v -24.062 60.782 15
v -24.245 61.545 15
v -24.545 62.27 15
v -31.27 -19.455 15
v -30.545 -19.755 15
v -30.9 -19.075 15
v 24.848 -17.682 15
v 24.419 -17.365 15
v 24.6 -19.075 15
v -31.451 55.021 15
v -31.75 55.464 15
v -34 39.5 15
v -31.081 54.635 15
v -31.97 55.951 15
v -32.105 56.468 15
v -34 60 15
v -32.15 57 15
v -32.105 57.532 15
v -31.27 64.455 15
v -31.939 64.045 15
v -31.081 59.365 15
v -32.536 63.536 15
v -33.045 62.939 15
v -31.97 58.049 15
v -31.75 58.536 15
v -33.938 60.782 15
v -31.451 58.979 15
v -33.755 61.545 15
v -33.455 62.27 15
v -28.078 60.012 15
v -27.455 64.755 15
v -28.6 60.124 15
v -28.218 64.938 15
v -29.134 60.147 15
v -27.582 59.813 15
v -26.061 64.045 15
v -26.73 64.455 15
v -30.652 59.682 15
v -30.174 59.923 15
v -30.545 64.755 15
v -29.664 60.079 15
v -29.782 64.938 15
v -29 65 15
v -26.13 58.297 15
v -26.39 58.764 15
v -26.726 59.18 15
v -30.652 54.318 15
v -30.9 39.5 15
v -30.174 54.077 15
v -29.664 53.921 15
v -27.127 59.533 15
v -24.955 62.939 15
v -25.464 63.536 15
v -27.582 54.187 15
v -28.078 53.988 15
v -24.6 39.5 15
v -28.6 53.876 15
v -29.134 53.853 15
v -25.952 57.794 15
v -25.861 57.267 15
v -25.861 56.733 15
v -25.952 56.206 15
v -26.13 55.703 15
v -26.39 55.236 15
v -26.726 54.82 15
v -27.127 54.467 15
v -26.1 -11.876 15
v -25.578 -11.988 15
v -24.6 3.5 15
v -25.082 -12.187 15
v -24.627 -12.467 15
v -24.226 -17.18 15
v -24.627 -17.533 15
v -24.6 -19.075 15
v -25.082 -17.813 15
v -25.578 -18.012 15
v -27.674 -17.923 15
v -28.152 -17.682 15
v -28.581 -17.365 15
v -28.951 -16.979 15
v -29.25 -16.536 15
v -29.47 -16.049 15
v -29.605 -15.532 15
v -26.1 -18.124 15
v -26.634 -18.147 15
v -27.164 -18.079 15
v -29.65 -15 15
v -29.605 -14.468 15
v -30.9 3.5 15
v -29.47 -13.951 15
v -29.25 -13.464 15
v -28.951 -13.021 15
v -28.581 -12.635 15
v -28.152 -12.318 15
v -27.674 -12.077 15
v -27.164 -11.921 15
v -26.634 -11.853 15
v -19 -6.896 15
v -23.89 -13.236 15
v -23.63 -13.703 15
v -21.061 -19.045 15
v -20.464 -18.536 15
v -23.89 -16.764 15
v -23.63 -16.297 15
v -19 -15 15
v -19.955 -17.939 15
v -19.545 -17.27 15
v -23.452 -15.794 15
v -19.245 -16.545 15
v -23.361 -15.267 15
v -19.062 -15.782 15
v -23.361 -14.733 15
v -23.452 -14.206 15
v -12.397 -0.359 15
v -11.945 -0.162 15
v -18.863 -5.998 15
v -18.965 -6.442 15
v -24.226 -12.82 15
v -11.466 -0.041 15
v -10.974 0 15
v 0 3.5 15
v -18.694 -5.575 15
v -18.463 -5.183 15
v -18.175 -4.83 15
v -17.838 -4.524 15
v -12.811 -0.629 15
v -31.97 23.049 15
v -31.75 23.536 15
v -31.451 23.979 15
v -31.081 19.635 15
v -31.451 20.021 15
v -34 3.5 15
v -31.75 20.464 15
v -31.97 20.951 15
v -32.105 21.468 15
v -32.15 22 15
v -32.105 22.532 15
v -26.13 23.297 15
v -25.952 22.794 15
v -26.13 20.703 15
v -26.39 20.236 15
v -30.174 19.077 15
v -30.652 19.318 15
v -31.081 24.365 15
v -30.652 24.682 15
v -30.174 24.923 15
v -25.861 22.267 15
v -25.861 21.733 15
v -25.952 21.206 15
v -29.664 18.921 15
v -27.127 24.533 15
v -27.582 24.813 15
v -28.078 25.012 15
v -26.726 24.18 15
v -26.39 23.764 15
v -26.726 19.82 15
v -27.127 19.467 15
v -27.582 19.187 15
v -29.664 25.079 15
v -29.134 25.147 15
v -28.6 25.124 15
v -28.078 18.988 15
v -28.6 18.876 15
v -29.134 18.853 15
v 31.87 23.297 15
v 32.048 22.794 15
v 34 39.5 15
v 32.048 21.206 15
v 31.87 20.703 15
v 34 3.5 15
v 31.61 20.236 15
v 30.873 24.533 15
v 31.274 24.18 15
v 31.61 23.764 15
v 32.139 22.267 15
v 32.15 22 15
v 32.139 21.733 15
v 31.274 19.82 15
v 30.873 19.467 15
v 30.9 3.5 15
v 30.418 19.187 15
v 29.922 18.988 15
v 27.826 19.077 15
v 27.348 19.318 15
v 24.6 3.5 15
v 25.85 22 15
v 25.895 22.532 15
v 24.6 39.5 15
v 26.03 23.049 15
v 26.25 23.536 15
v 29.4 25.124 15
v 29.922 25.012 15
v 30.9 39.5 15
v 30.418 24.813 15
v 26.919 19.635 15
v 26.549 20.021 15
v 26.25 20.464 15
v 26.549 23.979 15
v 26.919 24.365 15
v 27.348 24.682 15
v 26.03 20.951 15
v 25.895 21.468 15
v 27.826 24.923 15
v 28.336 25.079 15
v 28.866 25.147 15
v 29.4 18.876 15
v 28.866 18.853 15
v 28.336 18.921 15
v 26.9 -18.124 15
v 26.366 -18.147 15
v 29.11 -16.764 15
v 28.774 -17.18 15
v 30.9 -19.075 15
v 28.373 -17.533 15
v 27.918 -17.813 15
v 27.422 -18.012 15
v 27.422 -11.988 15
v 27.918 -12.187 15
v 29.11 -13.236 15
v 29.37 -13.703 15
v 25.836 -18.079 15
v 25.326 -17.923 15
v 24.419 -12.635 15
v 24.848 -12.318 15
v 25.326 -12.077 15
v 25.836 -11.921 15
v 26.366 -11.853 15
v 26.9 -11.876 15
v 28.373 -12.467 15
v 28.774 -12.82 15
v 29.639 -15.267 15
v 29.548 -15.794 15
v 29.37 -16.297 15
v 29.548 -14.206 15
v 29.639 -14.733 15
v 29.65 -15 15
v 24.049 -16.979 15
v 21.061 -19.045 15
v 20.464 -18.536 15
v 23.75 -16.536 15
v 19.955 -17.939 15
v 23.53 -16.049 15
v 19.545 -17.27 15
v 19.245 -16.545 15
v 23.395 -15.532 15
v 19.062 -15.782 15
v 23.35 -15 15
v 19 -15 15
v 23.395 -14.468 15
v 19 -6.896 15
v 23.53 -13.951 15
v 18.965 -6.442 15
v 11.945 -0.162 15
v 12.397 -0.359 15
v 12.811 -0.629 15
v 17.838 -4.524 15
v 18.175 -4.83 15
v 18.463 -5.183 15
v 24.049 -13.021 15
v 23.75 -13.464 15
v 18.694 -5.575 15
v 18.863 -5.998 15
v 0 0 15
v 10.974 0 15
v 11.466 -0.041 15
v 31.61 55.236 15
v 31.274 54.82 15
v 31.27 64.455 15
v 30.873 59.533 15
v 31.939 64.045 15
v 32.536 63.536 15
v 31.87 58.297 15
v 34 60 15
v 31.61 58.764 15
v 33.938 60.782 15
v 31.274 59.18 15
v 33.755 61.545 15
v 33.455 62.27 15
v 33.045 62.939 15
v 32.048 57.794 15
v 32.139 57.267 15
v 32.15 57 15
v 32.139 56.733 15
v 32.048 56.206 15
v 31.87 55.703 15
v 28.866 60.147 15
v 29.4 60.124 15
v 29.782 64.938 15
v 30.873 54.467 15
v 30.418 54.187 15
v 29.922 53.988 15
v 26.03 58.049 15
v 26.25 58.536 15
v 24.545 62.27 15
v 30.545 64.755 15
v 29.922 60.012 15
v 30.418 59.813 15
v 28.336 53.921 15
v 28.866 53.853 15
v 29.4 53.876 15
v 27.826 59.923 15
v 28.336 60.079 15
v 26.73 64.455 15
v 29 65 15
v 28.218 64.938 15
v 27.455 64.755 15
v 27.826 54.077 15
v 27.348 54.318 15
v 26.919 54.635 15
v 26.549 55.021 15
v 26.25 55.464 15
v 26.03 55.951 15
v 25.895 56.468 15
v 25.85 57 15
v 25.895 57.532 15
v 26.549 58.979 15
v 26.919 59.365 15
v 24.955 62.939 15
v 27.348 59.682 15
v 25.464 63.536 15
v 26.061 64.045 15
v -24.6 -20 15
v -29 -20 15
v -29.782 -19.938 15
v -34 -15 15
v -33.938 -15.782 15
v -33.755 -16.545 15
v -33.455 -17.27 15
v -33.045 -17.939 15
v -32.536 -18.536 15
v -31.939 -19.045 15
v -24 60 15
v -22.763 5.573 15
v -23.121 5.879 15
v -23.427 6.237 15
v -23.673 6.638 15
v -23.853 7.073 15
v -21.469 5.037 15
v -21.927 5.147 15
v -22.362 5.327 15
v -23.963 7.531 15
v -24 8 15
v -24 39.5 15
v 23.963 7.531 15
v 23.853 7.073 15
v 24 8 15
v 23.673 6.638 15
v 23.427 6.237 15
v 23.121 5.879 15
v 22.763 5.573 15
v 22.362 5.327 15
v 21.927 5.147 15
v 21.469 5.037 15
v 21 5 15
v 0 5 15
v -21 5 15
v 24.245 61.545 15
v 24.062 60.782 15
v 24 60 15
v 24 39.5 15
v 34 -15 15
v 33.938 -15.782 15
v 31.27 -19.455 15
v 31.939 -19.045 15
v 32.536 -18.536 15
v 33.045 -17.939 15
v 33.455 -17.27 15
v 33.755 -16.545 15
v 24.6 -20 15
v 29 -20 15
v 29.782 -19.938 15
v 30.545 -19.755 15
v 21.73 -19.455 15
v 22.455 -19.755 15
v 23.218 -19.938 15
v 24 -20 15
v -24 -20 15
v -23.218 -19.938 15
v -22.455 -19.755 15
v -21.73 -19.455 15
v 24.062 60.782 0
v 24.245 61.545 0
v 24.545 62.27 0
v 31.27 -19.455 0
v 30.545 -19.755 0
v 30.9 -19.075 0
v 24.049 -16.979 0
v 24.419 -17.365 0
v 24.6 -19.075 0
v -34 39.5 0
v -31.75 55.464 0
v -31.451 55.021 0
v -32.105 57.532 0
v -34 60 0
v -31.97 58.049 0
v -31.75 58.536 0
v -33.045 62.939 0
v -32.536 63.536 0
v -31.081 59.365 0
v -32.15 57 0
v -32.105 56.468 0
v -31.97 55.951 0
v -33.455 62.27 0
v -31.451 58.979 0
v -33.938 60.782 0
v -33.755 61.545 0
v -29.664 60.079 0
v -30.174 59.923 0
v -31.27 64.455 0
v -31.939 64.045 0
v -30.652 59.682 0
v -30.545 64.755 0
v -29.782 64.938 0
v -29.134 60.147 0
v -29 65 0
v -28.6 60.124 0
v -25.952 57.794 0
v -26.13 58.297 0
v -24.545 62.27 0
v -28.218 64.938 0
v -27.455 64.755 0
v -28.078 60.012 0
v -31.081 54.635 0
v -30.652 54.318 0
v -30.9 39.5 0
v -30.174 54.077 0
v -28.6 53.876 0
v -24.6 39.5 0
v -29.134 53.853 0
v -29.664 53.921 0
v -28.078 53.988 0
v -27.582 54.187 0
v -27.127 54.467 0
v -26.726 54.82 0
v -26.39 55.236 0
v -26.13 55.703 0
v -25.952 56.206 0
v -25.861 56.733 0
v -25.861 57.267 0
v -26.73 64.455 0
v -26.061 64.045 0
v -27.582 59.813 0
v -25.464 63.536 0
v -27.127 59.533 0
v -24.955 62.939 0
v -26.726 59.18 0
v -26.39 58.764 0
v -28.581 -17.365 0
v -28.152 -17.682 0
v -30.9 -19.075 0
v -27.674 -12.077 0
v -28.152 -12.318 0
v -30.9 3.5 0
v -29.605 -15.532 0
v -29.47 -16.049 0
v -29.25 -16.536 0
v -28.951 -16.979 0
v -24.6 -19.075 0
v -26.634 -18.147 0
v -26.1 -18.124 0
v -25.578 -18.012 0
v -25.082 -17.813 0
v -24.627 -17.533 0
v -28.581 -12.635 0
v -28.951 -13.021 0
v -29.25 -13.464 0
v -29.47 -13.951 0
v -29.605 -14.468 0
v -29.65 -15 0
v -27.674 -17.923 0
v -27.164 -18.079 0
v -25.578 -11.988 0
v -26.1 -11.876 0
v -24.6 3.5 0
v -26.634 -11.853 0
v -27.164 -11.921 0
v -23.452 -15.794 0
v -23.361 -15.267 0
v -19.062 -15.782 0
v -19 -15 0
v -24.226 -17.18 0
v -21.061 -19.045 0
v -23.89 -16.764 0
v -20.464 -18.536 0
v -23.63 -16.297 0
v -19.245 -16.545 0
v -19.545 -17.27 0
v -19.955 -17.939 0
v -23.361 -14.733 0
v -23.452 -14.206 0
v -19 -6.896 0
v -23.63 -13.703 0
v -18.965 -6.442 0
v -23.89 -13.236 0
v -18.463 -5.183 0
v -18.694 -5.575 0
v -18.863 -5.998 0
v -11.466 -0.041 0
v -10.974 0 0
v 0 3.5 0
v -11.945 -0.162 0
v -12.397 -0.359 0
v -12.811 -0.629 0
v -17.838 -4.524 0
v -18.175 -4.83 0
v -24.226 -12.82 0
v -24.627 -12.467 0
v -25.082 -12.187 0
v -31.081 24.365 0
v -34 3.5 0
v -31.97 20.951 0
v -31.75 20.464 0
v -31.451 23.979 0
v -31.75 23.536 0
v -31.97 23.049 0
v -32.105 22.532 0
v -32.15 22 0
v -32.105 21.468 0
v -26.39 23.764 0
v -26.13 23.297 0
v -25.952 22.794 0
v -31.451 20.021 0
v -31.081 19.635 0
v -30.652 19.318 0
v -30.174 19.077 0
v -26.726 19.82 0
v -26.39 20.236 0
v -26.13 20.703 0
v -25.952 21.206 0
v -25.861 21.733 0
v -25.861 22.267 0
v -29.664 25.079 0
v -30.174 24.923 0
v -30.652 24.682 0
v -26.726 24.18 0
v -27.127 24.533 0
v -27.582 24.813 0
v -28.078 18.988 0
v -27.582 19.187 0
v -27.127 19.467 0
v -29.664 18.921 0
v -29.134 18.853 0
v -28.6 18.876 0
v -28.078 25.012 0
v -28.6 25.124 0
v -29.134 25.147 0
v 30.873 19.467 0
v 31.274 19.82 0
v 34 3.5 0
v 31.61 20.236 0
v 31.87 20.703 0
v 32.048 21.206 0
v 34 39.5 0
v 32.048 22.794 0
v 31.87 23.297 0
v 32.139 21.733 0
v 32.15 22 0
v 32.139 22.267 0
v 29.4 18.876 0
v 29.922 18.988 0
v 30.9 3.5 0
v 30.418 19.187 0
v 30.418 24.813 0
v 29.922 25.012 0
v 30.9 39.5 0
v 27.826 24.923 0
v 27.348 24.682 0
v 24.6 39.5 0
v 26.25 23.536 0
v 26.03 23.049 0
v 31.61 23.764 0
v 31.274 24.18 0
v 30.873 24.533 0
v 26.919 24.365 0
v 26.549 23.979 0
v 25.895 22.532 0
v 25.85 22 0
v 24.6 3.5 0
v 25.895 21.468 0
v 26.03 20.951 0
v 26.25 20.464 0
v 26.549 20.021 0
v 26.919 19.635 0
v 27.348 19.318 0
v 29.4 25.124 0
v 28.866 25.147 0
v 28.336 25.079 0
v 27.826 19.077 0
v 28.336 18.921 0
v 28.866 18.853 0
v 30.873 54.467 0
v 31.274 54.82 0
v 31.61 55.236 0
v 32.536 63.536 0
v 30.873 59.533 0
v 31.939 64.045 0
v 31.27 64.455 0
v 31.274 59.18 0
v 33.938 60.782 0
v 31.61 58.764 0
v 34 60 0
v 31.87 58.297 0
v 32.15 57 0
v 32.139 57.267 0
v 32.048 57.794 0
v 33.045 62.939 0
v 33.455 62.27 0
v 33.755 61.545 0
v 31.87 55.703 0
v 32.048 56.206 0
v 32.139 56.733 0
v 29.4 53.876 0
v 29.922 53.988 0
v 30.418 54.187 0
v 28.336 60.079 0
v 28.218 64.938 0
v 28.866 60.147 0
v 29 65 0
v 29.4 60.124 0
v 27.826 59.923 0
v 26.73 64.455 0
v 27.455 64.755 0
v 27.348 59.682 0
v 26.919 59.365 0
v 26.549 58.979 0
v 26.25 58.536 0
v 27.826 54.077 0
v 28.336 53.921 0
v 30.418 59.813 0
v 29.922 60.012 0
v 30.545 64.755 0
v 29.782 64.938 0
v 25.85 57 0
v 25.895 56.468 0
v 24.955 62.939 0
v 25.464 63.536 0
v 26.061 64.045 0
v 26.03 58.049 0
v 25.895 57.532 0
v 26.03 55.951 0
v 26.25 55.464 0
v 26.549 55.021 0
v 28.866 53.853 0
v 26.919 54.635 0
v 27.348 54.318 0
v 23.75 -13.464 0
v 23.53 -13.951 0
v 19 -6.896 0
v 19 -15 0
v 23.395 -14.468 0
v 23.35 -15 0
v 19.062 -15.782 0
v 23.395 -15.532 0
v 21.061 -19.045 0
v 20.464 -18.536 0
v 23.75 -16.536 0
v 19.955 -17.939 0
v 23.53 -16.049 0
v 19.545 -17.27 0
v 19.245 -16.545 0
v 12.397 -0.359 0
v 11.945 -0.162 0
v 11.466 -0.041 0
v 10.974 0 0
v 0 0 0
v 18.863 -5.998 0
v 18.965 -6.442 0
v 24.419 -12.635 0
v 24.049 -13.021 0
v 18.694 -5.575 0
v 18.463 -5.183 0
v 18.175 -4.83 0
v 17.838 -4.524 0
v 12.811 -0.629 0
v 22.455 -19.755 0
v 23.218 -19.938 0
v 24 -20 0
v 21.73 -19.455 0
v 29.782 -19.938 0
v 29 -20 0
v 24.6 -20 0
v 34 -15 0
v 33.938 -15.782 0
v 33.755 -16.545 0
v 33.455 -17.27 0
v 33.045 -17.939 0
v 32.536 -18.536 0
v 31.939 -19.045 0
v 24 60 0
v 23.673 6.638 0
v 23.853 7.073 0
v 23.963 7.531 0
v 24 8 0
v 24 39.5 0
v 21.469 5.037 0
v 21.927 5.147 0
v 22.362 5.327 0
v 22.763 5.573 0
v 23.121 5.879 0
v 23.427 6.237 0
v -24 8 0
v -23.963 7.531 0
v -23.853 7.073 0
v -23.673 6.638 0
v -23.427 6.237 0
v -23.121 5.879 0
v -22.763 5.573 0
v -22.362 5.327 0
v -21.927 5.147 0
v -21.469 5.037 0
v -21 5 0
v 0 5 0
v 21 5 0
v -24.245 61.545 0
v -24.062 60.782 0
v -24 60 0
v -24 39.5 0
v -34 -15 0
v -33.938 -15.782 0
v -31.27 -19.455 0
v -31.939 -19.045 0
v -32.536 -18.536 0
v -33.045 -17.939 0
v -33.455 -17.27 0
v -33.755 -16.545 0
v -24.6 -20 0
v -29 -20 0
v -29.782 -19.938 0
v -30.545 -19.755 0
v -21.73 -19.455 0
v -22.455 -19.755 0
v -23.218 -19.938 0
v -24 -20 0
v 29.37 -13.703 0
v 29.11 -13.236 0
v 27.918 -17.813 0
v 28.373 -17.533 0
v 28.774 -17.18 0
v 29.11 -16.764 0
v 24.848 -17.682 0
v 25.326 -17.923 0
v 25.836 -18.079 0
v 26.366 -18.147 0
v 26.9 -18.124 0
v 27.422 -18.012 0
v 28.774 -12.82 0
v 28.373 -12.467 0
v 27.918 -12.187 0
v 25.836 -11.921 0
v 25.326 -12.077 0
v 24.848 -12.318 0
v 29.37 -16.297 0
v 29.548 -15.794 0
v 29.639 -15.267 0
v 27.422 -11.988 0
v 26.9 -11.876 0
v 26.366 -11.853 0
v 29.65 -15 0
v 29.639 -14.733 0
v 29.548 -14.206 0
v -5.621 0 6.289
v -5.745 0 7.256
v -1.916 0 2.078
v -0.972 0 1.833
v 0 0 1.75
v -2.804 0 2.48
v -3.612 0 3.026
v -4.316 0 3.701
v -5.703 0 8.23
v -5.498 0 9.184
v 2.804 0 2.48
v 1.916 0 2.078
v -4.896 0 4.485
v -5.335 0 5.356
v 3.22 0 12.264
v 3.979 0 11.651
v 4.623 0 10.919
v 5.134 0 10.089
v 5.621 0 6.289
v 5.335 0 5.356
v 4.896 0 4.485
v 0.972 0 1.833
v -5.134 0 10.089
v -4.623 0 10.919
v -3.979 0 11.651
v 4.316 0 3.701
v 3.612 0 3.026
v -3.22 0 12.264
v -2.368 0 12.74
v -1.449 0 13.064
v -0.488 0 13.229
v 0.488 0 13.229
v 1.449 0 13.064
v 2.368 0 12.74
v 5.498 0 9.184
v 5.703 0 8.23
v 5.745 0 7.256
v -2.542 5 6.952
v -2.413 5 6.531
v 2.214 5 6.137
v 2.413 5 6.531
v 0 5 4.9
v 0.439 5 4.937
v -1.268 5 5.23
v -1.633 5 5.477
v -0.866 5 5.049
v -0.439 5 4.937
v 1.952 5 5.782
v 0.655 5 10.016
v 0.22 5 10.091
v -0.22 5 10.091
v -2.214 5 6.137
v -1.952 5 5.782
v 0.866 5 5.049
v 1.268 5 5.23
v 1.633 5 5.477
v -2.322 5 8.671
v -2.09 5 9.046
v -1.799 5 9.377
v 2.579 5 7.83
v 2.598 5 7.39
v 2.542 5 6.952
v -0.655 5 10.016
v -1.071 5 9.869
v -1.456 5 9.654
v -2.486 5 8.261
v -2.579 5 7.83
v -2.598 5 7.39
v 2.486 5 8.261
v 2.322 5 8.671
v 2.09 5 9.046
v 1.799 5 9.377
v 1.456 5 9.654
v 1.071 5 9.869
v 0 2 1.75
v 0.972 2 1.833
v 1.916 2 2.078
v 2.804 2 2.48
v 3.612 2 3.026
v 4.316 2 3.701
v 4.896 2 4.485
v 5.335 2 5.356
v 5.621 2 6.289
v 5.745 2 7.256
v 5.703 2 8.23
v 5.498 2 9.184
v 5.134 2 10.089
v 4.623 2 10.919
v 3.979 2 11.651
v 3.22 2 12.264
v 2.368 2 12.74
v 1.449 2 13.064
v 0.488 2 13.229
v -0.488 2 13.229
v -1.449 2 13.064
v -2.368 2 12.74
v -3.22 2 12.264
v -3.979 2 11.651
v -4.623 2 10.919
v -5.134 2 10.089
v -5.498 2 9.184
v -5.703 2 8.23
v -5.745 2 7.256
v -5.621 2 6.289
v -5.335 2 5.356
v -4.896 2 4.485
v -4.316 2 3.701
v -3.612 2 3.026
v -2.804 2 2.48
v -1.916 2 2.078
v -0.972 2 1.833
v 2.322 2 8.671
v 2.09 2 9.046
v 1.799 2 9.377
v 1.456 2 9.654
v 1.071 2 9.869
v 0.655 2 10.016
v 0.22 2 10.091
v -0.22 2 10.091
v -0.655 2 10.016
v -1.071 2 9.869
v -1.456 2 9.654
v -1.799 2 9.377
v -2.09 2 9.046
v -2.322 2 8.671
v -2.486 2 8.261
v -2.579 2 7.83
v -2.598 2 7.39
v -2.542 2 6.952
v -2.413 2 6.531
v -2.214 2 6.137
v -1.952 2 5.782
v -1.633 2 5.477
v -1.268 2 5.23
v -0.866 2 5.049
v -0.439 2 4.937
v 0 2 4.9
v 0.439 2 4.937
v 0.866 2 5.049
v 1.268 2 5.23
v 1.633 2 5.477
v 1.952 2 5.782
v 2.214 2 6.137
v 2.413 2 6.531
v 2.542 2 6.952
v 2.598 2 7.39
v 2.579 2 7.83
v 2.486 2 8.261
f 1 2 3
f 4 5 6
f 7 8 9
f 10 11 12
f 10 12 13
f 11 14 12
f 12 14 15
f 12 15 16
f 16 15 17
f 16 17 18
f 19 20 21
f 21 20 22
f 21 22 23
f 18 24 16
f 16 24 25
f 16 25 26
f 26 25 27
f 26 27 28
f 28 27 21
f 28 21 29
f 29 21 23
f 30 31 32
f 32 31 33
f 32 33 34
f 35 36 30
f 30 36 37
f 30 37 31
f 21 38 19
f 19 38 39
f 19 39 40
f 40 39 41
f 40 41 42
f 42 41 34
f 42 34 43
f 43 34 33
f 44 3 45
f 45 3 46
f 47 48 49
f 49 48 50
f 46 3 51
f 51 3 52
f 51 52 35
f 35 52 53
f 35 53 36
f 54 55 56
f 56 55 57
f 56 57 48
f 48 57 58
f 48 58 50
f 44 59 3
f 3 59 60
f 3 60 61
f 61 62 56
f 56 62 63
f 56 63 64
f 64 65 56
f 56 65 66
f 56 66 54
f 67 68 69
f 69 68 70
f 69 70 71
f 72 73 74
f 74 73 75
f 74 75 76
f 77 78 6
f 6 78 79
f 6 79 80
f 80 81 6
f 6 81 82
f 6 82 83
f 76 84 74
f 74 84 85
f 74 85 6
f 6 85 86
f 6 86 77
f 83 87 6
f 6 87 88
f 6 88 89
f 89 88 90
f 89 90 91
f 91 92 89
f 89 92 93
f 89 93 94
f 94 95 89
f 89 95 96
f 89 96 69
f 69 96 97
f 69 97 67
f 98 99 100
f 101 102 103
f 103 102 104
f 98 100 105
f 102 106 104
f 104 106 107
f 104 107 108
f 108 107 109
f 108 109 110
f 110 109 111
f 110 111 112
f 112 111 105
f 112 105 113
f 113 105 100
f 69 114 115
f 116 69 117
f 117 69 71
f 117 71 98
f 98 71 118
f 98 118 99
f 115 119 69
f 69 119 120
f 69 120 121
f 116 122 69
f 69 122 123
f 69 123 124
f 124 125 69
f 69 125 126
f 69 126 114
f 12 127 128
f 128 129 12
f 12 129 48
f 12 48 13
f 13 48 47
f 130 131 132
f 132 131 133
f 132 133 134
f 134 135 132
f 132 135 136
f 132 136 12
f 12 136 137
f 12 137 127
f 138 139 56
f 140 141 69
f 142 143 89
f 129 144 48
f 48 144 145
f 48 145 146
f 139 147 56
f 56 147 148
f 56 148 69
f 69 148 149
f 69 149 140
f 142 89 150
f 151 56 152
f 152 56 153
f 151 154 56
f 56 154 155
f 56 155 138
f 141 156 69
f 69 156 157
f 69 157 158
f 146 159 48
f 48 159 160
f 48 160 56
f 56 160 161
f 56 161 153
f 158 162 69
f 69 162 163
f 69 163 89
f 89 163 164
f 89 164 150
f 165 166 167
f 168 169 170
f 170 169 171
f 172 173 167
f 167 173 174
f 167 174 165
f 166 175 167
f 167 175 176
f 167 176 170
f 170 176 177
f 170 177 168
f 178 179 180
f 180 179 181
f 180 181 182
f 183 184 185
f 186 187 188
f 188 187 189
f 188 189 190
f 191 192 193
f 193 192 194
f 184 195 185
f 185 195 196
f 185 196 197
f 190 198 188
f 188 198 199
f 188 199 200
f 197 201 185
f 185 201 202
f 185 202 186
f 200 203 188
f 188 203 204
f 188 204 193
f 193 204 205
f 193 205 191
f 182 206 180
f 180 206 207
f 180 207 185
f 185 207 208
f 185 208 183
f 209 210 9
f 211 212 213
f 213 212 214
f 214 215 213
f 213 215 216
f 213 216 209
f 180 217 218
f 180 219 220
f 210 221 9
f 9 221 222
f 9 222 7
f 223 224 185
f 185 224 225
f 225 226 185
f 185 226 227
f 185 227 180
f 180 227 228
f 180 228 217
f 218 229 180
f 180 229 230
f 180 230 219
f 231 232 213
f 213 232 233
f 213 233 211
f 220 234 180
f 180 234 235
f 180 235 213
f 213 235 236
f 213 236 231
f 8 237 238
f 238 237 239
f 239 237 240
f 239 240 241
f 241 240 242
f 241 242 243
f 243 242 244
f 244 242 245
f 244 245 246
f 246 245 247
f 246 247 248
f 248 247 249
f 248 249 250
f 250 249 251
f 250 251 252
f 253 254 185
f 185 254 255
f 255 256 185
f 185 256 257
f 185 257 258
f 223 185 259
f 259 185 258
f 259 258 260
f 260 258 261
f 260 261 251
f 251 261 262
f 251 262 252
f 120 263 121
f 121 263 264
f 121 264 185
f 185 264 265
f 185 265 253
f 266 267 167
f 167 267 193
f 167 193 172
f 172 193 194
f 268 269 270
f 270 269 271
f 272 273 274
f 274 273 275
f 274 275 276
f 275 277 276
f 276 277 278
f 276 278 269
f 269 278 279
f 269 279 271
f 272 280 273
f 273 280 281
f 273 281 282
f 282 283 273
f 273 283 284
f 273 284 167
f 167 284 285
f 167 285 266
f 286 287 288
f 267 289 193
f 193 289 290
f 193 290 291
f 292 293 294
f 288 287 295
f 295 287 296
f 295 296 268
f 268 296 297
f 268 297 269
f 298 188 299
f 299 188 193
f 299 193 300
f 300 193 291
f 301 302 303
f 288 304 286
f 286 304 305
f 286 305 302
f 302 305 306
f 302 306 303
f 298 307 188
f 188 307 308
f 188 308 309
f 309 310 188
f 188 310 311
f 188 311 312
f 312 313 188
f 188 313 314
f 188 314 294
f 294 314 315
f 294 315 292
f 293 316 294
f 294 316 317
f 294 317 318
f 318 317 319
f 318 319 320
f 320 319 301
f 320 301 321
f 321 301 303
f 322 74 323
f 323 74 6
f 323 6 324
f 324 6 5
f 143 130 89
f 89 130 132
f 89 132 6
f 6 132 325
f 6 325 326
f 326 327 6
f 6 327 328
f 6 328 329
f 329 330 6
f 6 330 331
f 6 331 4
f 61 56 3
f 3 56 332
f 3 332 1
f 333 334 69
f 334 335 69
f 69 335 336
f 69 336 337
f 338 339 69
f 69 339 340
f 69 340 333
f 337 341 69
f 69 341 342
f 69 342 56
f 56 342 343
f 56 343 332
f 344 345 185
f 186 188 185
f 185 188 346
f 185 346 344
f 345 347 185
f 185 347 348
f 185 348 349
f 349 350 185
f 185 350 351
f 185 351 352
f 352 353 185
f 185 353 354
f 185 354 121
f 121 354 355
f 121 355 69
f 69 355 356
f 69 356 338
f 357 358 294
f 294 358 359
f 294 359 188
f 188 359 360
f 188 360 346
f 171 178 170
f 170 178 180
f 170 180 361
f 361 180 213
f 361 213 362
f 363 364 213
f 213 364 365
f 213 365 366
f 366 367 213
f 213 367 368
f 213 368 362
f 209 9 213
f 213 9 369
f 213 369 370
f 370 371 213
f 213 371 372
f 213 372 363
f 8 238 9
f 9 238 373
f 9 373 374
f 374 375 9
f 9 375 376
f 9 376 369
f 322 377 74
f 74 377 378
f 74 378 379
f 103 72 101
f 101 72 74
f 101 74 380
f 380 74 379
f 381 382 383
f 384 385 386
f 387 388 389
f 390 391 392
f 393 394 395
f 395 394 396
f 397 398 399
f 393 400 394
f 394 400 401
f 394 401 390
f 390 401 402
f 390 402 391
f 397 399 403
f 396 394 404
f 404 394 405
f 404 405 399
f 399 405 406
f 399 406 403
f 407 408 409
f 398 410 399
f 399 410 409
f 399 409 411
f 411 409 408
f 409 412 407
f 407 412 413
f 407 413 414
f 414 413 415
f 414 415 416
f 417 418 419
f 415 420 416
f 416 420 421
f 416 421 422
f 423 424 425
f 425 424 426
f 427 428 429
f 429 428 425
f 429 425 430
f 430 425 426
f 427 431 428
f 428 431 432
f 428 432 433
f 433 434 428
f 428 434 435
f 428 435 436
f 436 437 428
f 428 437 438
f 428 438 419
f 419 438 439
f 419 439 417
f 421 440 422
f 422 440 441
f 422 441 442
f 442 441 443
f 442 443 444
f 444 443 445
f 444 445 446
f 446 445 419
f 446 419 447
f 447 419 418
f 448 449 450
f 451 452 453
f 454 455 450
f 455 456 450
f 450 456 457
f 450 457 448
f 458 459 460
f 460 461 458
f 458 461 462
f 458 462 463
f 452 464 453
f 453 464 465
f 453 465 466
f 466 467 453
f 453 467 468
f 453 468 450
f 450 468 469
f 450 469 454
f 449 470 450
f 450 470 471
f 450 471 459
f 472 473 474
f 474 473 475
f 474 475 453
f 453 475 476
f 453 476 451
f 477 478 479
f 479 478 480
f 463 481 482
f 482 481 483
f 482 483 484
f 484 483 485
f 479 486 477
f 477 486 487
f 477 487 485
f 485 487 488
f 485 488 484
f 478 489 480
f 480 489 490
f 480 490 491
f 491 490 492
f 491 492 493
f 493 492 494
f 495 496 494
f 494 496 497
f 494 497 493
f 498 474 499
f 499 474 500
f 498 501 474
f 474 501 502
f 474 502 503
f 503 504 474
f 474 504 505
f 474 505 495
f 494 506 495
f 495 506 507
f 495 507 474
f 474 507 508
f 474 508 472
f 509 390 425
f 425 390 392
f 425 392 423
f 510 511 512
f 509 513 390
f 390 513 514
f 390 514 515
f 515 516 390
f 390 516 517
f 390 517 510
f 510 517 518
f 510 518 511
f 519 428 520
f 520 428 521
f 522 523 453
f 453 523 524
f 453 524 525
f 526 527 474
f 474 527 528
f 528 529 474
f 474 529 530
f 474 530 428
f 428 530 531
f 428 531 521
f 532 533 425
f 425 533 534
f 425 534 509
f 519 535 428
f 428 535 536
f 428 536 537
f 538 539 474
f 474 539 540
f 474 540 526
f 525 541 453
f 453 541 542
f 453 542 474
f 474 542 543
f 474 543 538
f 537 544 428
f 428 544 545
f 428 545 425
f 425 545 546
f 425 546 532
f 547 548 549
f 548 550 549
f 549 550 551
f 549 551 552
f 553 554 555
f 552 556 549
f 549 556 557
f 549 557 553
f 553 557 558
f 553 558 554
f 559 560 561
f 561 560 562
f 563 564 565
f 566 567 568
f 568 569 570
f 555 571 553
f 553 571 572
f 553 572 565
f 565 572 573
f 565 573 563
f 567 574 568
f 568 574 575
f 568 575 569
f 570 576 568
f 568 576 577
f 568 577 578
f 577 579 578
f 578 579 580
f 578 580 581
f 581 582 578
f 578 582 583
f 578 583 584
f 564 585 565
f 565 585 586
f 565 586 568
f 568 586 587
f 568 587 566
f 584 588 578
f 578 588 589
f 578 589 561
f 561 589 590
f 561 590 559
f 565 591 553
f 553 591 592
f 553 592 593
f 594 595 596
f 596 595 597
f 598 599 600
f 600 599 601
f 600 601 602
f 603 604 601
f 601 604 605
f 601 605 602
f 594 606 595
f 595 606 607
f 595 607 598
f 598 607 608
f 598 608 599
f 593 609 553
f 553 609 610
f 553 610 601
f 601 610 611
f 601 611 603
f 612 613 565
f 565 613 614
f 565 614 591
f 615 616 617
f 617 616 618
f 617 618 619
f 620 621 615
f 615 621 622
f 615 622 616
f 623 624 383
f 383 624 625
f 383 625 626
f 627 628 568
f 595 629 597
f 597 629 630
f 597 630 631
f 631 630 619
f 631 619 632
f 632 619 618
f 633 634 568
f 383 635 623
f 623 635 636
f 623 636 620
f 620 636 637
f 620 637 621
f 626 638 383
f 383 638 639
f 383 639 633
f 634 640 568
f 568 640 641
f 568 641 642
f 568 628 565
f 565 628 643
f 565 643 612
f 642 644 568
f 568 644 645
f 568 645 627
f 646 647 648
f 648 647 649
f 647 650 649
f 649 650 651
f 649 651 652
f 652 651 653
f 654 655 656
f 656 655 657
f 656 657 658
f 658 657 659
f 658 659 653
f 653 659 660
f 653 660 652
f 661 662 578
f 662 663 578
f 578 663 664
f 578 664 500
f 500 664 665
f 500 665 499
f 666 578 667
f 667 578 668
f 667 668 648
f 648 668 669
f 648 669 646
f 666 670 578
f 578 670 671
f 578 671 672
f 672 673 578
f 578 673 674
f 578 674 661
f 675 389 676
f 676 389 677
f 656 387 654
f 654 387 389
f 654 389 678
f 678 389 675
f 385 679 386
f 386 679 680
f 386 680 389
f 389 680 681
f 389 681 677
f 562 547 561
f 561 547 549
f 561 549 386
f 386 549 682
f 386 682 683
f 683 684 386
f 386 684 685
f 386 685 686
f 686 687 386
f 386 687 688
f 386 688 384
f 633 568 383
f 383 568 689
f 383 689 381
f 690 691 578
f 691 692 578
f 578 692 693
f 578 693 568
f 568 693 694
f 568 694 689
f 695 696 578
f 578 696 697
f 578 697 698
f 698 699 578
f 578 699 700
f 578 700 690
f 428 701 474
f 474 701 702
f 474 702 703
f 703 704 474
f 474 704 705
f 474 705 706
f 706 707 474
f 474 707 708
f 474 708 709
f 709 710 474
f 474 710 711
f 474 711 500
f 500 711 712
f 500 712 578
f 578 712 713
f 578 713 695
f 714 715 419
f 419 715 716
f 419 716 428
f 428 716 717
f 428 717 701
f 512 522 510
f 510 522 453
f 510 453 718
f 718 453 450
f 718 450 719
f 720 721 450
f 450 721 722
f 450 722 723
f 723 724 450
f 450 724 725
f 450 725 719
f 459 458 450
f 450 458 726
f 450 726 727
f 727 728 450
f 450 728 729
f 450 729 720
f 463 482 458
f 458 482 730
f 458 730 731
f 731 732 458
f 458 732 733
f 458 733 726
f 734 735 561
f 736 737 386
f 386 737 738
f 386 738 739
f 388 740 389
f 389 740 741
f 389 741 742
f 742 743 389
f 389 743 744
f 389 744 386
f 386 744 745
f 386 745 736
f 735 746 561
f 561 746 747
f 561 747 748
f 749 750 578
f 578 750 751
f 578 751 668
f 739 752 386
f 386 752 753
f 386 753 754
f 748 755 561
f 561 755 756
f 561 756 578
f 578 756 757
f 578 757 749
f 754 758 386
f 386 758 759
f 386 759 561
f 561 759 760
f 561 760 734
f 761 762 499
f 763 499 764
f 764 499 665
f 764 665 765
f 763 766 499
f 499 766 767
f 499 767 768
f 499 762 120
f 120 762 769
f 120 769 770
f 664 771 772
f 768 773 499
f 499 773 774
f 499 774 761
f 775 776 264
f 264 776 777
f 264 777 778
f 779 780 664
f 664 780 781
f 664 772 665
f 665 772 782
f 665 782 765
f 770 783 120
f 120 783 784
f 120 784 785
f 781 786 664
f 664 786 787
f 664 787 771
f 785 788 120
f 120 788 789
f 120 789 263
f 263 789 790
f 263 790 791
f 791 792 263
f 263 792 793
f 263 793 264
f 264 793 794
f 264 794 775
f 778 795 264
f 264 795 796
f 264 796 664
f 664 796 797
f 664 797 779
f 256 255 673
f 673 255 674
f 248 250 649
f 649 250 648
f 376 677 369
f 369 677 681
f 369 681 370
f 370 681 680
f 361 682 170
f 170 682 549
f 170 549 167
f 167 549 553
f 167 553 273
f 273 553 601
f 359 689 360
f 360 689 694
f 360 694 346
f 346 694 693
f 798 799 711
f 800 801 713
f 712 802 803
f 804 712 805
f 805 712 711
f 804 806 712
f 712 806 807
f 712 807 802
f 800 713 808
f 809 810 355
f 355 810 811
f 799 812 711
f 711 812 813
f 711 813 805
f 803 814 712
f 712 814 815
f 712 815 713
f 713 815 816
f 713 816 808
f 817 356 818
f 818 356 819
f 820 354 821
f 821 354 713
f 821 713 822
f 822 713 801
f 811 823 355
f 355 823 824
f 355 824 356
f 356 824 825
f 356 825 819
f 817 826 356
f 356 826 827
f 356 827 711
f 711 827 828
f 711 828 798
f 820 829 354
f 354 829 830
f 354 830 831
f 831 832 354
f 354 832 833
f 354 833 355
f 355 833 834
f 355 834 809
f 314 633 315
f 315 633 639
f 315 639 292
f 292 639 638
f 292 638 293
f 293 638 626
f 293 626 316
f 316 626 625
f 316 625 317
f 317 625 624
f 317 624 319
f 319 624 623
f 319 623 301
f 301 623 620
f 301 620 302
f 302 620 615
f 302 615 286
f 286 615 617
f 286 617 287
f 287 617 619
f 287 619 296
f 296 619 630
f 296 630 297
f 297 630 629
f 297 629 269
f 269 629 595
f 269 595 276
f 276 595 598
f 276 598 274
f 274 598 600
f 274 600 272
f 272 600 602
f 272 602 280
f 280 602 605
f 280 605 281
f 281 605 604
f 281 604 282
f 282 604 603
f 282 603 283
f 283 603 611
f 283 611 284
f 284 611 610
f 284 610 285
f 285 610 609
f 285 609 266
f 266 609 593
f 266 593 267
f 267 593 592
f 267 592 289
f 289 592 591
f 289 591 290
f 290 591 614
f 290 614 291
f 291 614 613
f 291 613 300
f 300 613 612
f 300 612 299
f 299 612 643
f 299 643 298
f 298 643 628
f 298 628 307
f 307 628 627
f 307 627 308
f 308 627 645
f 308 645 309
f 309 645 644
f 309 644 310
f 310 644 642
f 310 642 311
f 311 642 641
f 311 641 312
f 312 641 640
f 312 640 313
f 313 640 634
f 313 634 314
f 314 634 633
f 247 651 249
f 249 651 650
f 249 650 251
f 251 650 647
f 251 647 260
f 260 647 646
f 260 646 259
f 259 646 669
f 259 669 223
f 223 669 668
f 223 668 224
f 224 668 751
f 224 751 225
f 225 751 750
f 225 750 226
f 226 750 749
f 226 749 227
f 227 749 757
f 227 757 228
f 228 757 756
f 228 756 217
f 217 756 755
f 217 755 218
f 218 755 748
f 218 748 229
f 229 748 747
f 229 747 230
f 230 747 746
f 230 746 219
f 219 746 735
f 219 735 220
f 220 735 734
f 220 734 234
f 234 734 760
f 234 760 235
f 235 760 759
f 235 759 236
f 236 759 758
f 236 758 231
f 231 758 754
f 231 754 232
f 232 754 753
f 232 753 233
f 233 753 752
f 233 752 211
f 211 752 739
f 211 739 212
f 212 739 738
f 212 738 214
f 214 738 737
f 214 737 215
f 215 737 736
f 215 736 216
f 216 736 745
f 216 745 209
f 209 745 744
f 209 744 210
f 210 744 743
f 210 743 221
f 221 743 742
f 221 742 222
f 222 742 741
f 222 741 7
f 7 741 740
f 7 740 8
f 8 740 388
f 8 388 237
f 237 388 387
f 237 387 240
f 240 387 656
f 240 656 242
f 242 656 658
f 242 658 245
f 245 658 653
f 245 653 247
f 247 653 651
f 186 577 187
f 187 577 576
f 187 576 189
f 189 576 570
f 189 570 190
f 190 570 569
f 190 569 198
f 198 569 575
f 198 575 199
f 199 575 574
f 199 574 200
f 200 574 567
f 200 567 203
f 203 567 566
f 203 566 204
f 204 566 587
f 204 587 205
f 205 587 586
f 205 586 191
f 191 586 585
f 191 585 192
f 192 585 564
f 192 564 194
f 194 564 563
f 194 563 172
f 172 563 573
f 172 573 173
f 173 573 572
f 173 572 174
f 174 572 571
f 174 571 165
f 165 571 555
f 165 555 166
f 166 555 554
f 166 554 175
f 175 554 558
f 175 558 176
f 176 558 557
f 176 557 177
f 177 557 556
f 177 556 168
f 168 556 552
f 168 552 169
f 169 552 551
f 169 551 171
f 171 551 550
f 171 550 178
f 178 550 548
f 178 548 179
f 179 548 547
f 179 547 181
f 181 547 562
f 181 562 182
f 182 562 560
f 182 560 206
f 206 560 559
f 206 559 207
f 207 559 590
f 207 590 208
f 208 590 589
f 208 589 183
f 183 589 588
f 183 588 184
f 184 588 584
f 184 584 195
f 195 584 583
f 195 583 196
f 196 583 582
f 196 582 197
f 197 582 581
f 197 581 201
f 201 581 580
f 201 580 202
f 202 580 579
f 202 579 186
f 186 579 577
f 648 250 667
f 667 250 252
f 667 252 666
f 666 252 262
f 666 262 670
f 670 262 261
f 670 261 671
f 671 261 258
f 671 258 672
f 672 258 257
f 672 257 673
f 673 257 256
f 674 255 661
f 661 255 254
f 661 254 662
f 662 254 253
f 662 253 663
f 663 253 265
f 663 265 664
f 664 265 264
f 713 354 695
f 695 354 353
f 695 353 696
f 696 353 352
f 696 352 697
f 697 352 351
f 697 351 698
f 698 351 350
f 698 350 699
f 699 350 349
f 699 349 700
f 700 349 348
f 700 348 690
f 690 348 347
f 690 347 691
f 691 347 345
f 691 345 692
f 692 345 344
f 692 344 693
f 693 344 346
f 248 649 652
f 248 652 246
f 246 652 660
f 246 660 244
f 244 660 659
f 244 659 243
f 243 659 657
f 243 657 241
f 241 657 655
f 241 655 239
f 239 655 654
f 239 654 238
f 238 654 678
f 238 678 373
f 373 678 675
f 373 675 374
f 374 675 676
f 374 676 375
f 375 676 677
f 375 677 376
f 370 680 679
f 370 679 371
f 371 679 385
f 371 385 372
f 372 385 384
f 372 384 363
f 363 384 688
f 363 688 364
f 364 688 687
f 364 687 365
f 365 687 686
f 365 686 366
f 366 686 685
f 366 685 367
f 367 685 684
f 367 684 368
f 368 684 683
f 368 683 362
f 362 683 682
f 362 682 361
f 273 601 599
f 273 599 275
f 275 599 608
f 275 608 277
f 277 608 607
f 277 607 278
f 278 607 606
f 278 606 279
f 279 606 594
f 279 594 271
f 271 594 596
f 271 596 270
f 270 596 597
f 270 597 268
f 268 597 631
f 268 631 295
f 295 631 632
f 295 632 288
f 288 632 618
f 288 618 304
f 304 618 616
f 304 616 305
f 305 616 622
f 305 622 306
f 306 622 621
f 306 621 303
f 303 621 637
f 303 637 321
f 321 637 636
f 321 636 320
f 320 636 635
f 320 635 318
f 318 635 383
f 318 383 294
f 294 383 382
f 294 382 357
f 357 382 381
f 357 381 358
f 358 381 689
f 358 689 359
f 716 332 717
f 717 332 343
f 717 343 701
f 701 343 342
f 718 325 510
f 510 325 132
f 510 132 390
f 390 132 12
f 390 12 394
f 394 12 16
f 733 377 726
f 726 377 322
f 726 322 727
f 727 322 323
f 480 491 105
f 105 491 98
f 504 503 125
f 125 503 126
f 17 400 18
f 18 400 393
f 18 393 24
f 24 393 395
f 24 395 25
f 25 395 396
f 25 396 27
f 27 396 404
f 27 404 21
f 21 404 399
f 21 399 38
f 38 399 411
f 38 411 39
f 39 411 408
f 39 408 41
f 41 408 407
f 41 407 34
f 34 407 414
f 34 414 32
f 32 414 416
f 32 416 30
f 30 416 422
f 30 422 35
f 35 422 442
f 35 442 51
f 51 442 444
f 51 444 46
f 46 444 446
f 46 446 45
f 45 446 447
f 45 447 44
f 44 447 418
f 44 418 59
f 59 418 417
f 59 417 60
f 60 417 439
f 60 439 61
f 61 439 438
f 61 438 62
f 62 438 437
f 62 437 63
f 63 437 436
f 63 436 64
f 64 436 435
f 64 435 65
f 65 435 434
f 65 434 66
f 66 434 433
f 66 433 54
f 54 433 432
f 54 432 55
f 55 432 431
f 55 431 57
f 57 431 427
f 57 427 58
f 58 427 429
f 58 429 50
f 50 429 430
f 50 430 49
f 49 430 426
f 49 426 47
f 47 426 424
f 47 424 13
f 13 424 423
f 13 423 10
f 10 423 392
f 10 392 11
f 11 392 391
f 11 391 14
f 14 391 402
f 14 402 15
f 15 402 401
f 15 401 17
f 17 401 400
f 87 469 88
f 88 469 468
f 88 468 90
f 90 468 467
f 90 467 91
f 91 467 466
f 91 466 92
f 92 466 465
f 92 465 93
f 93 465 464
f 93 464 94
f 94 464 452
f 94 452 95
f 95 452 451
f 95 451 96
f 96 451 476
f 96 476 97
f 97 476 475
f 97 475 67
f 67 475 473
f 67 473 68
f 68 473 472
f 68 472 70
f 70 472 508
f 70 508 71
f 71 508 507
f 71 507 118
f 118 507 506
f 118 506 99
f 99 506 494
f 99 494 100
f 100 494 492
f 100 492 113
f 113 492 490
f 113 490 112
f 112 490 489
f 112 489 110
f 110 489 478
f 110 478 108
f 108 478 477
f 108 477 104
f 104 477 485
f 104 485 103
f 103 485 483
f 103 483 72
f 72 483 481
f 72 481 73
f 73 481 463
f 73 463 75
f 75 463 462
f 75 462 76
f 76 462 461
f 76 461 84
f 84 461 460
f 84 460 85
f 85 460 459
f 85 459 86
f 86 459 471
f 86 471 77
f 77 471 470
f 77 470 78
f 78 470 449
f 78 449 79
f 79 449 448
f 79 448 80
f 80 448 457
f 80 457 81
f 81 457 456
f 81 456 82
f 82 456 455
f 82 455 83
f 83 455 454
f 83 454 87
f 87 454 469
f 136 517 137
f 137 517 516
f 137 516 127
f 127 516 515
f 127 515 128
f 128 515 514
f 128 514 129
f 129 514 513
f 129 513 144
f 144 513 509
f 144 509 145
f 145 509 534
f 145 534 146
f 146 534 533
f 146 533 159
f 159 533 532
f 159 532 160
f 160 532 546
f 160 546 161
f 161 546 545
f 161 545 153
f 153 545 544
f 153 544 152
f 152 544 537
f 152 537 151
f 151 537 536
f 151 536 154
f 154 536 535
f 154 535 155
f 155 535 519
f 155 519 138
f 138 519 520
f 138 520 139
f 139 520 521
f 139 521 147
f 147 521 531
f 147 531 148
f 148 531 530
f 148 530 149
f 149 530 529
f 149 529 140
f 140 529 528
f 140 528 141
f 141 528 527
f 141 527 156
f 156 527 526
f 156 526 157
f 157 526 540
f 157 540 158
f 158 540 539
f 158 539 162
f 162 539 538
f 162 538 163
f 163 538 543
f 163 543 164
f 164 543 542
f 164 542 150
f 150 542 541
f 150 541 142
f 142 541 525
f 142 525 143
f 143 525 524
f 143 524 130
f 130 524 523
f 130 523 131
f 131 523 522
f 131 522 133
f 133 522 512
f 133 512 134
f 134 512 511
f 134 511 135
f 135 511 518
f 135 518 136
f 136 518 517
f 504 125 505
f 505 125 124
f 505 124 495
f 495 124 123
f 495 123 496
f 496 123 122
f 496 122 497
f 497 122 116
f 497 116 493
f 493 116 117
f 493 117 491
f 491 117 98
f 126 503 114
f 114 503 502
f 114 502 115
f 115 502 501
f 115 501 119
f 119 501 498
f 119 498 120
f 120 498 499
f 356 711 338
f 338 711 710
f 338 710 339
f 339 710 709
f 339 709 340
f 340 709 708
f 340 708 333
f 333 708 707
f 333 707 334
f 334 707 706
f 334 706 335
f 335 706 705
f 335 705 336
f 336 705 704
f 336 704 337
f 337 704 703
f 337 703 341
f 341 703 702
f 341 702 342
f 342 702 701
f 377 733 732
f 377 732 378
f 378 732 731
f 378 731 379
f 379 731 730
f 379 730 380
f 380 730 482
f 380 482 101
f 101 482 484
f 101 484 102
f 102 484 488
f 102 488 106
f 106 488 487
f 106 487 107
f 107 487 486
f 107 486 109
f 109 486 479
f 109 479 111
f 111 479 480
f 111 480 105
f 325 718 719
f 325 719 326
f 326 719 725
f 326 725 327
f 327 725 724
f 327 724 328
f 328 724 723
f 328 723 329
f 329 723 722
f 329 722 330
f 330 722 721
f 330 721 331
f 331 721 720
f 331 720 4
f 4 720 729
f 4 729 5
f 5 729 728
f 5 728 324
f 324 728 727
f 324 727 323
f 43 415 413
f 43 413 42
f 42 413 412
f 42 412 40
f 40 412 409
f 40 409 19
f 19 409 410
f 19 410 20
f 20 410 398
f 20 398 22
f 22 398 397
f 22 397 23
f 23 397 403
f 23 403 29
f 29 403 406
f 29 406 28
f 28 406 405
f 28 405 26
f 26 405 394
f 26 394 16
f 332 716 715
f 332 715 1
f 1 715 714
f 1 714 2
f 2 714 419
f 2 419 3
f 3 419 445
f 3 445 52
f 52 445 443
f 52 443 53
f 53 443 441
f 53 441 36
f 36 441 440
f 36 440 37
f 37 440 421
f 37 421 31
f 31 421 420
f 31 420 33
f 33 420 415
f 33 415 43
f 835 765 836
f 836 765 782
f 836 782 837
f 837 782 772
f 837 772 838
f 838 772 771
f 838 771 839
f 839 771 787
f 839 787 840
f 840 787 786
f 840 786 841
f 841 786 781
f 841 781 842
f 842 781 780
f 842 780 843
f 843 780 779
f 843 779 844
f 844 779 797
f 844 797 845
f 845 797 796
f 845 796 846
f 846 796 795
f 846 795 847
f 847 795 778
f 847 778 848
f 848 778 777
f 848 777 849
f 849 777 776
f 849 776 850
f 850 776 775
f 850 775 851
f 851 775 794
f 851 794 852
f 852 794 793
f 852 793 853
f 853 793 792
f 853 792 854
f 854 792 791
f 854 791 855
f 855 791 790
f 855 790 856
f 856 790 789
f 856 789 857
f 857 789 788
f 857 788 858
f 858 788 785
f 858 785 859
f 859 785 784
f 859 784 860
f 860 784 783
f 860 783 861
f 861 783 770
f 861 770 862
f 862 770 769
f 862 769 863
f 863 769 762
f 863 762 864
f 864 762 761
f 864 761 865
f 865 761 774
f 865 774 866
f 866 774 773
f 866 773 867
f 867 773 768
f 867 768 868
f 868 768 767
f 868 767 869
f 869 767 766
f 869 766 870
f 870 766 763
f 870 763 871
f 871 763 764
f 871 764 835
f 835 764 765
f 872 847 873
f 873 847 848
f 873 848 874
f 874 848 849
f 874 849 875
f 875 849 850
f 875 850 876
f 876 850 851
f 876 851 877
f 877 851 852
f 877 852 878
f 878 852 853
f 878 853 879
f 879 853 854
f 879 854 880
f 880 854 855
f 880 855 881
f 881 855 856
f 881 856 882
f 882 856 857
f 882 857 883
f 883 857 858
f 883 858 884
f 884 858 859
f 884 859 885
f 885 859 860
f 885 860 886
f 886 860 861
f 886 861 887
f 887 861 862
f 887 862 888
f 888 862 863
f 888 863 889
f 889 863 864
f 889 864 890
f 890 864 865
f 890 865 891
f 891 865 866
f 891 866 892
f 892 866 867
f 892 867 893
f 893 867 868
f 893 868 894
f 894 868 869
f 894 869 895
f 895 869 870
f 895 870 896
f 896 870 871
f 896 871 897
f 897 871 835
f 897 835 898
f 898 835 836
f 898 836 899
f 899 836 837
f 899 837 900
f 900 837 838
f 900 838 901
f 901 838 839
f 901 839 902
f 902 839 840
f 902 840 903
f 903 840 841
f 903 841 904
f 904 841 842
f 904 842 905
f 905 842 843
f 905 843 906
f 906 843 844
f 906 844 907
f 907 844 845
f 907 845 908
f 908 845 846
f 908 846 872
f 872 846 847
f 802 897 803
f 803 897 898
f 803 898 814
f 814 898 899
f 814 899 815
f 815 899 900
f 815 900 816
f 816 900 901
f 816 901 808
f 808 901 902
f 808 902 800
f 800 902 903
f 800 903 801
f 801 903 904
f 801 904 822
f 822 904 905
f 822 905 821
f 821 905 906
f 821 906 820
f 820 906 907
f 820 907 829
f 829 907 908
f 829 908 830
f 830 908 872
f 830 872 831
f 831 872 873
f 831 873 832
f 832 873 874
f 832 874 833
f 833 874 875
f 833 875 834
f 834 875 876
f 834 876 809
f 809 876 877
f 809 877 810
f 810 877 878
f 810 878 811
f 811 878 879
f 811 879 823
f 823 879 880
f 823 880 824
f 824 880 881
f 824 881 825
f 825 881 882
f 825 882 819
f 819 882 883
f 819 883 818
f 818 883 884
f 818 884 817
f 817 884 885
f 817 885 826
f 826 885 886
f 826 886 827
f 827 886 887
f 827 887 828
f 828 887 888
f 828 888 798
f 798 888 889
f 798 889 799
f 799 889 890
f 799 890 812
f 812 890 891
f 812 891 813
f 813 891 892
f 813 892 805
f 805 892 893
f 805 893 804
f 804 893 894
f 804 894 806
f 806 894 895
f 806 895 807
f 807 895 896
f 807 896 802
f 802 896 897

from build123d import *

# Parameters (mm, degrees)
ESQUISSE1_R             = 3.15
BOSS_EXTRU_1_DEPTH      = 15
CONG_1_R                = 3
CONG_2_R                = 5
CONG_1_OF_SYM_TRIE2_R   = 3
CONG_2_OF_SYM_TRIE2_R   = 5
ESQUISSE3_R             = 5.75
ENL_V_MAT_EXTRU_1_DEPTH = 2
ENL_V_MAT_EXTRU_2_REACH = 75.144
ESQUISSE4_R             = 2.6


with BuildPart() as part:
    # Esquisse1 → Boss.-Extru.1 (new body)
    with BuildSketch(Plane.XY):
        Polygon((0, 0), (0, 5), (24, 5), (24, 65), (34, 65), (34, -20), (19, -20), (19, -5.425258757), (12, 0), align=None)
        with Locations((29, 57)):
            Circle(ESQUISSE1_R, mode=Mode.SUBTRACT)
        with Locations((26.5, -15)):
            Circle(ESQUISSE1_R, mode=Mode.SUBTRACT)
        with Locations((29, 22)):
            Circle(ESQUISSE1_R, mode=Mode.SUBTRACT)
    boss_extru_1 = extrude(amount=BOSS_EXTRU_1_DEPTH)

    # Congé1
    cong_1_edges = [part.edges().sort_by_distance(p)[0] for p in [
        (24, 5, 7.5),
        (19, -5.425258757, 7.5),
        (12, 0, 7.5),
    ]]
    fillet(cong_1_edges, radius=CONG_1_R)

    # Congé2
    cong_2_edges = [part.edges().sort_by_distance(p)[0] for p in [
        (19, -20, 7.5),
        (34, -20, 7.5),
        (24, 65, 7.5),
        (34, 65, 7.5),
    ]]
    fillet(cong_2_edges, radius=CONG_2_R - 0.0001)  # a hair under: the kernel refuses the full size

    # Symétrie2: Boss.-Extru.1 across plane
    add(boss_extru_1.mirror(Plane(origin=(0, 0, 15), x_dir=(0, 0, 1), z_dir=(1, 0, 0))))

    # Congé1 of Symétrie2
    cong_1_of_sym_trie2_edges = [part.edges().sort_by_distance(p)[0] for p in [
        (-24, 5, 7.5),
        (-19, -5.425258757, 7.5),
        (-12, 0, 7.5),
    ]]
    fillet(cong_1_of_sym_trie2_edges, radius=CONG_1_OF_SYM_TRIE2_R)

    # Congé2 of Symétrie2
    cong_2_of_sym_trie2_edges = [part.edges().sort_by_distance(p)[0] for p in [
        (-19, -20, 7.5),
        (-34, -20, 7.5),
        (-24, 65, 7.5),
        (-34, 65, 7.5),
    ]]
    fillet(cong_2_of_sym_trie2_edges, radius=CONG_2_OF_SYM_TRIE2_R - 0.0001)  # a hair under: the kernel refuses the full size

    # Esquisse3 → Enlèv. mat.-Extru.1 (cut)
    with BuildSketch(Plane.XZ):
        with Locations(Location((0, 7.5, 0), (0, 0, 270))):
            Circle(ESQUISSE3_R)
    extrude(amount=-ENL_V_MAT_EXTRU_1_DEPTH, mode=Mode.SUBTRACT)

    # Esquisse4 → Enlèv. mat.-Extru.2 (cut, up to next)
    with BuildSketch(Plane.XZ.offset(-2), mode=Mode.PRIVATE) as enl_v_mat_extru_2_sk1:
        with Locations(Location((0, 7.5, 0), (0, 0, 270))):
            Circle(ESQUISSE4_R)
    enl_v_mat_extru_2_tool1 = extrude(enl_v_mat_extru_2_sk1.sketch, amount=-ENL_V_MAT_EXTRU_2_REACH, mode=Mode.PRIVATE) & part.part
    enl_v_mat_extru_2 = enl_v_mat_extru_2_tool1.solids().sort_by_distance((0, 2, 7.5))[0]
    add(enl_v_mat_extru_2, mode=Mode.SUBTRACT)

    # Symétrie1: Enlèv. mat.-Extru.2 across Right Plane
    add(enl_v_mat_extru_2.mirror(Plane(origin=(0, 0, 0), x_dir=(0, 0, -1), z_dir=(1, 0, 0))), mode=Mode.SUBTRACT)


solid = part.part
